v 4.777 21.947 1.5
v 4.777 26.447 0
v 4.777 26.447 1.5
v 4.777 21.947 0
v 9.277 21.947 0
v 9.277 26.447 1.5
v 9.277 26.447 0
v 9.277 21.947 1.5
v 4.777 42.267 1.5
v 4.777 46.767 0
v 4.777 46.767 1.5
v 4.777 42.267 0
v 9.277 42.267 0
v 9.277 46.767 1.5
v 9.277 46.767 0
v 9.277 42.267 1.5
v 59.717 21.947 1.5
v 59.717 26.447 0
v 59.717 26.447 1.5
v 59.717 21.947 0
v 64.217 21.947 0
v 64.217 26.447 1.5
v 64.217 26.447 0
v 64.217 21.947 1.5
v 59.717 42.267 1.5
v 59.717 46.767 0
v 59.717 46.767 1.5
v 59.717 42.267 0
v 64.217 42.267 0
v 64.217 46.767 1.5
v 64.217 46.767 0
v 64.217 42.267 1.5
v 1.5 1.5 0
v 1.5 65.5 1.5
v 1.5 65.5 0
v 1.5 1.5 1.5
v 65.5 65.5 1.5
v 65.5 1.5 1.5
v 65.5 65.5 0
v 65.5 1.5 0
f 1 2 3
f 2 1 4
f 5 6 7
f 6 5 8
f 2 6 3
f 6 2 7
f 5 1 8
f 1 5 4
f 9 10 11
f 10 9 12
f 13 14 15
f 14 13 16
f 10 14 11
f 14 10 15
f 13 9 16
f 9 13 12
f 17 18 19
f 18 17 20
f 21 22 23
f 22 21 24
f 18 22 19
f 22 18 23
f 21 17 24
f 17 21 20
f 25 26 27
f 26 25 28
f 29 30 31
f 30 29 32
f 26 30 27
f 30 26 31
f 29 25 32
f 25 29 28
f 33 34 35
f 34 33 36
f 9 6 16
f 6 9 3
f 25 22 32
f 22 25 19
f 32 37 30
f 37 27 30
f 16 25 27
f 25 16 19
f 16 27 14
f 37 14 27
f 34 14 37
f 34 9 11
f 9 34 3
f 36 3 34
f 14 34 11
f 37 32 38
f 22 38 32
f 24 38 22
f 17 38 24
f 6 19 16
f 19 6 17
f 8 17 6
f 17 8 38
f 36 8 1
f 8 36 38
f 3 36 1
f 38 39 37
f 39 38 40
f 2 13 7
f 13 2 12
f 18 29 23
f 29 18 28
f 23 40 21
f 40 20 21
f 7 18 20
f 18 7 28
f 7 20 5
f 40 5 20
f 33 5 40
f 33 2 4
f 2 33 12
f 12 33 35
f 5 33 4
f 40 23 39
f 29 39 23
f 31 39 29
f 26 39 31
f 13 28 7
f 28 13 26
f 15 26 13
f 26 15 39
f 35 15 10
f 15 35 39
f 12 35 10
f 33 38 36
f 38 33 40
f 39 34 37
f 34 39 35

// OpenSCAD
$fn = 30;
thou2mm = 0.0254;


difference(){
    translate([1.5,1.5,0]){cube([64,64,1.5]);};
    translate([1.5,1.5,-10]){
    translate([129*thou2mm,805*thou2mm]) {
        cube([4.5,4.5,50]);
    }
    translate([129*thou2mm,1605*thou2mm]){
        cube([4.5,4.5,50]);
    }
    translate([2292*thou2mm,805*thou2mm]){ 
        cube([4.5,4.5,50]);
    }
    translate([2292*thou2mm,1605*thou2mm]){ 
        cube([4.5,4.5,50]);
    }
}
}
